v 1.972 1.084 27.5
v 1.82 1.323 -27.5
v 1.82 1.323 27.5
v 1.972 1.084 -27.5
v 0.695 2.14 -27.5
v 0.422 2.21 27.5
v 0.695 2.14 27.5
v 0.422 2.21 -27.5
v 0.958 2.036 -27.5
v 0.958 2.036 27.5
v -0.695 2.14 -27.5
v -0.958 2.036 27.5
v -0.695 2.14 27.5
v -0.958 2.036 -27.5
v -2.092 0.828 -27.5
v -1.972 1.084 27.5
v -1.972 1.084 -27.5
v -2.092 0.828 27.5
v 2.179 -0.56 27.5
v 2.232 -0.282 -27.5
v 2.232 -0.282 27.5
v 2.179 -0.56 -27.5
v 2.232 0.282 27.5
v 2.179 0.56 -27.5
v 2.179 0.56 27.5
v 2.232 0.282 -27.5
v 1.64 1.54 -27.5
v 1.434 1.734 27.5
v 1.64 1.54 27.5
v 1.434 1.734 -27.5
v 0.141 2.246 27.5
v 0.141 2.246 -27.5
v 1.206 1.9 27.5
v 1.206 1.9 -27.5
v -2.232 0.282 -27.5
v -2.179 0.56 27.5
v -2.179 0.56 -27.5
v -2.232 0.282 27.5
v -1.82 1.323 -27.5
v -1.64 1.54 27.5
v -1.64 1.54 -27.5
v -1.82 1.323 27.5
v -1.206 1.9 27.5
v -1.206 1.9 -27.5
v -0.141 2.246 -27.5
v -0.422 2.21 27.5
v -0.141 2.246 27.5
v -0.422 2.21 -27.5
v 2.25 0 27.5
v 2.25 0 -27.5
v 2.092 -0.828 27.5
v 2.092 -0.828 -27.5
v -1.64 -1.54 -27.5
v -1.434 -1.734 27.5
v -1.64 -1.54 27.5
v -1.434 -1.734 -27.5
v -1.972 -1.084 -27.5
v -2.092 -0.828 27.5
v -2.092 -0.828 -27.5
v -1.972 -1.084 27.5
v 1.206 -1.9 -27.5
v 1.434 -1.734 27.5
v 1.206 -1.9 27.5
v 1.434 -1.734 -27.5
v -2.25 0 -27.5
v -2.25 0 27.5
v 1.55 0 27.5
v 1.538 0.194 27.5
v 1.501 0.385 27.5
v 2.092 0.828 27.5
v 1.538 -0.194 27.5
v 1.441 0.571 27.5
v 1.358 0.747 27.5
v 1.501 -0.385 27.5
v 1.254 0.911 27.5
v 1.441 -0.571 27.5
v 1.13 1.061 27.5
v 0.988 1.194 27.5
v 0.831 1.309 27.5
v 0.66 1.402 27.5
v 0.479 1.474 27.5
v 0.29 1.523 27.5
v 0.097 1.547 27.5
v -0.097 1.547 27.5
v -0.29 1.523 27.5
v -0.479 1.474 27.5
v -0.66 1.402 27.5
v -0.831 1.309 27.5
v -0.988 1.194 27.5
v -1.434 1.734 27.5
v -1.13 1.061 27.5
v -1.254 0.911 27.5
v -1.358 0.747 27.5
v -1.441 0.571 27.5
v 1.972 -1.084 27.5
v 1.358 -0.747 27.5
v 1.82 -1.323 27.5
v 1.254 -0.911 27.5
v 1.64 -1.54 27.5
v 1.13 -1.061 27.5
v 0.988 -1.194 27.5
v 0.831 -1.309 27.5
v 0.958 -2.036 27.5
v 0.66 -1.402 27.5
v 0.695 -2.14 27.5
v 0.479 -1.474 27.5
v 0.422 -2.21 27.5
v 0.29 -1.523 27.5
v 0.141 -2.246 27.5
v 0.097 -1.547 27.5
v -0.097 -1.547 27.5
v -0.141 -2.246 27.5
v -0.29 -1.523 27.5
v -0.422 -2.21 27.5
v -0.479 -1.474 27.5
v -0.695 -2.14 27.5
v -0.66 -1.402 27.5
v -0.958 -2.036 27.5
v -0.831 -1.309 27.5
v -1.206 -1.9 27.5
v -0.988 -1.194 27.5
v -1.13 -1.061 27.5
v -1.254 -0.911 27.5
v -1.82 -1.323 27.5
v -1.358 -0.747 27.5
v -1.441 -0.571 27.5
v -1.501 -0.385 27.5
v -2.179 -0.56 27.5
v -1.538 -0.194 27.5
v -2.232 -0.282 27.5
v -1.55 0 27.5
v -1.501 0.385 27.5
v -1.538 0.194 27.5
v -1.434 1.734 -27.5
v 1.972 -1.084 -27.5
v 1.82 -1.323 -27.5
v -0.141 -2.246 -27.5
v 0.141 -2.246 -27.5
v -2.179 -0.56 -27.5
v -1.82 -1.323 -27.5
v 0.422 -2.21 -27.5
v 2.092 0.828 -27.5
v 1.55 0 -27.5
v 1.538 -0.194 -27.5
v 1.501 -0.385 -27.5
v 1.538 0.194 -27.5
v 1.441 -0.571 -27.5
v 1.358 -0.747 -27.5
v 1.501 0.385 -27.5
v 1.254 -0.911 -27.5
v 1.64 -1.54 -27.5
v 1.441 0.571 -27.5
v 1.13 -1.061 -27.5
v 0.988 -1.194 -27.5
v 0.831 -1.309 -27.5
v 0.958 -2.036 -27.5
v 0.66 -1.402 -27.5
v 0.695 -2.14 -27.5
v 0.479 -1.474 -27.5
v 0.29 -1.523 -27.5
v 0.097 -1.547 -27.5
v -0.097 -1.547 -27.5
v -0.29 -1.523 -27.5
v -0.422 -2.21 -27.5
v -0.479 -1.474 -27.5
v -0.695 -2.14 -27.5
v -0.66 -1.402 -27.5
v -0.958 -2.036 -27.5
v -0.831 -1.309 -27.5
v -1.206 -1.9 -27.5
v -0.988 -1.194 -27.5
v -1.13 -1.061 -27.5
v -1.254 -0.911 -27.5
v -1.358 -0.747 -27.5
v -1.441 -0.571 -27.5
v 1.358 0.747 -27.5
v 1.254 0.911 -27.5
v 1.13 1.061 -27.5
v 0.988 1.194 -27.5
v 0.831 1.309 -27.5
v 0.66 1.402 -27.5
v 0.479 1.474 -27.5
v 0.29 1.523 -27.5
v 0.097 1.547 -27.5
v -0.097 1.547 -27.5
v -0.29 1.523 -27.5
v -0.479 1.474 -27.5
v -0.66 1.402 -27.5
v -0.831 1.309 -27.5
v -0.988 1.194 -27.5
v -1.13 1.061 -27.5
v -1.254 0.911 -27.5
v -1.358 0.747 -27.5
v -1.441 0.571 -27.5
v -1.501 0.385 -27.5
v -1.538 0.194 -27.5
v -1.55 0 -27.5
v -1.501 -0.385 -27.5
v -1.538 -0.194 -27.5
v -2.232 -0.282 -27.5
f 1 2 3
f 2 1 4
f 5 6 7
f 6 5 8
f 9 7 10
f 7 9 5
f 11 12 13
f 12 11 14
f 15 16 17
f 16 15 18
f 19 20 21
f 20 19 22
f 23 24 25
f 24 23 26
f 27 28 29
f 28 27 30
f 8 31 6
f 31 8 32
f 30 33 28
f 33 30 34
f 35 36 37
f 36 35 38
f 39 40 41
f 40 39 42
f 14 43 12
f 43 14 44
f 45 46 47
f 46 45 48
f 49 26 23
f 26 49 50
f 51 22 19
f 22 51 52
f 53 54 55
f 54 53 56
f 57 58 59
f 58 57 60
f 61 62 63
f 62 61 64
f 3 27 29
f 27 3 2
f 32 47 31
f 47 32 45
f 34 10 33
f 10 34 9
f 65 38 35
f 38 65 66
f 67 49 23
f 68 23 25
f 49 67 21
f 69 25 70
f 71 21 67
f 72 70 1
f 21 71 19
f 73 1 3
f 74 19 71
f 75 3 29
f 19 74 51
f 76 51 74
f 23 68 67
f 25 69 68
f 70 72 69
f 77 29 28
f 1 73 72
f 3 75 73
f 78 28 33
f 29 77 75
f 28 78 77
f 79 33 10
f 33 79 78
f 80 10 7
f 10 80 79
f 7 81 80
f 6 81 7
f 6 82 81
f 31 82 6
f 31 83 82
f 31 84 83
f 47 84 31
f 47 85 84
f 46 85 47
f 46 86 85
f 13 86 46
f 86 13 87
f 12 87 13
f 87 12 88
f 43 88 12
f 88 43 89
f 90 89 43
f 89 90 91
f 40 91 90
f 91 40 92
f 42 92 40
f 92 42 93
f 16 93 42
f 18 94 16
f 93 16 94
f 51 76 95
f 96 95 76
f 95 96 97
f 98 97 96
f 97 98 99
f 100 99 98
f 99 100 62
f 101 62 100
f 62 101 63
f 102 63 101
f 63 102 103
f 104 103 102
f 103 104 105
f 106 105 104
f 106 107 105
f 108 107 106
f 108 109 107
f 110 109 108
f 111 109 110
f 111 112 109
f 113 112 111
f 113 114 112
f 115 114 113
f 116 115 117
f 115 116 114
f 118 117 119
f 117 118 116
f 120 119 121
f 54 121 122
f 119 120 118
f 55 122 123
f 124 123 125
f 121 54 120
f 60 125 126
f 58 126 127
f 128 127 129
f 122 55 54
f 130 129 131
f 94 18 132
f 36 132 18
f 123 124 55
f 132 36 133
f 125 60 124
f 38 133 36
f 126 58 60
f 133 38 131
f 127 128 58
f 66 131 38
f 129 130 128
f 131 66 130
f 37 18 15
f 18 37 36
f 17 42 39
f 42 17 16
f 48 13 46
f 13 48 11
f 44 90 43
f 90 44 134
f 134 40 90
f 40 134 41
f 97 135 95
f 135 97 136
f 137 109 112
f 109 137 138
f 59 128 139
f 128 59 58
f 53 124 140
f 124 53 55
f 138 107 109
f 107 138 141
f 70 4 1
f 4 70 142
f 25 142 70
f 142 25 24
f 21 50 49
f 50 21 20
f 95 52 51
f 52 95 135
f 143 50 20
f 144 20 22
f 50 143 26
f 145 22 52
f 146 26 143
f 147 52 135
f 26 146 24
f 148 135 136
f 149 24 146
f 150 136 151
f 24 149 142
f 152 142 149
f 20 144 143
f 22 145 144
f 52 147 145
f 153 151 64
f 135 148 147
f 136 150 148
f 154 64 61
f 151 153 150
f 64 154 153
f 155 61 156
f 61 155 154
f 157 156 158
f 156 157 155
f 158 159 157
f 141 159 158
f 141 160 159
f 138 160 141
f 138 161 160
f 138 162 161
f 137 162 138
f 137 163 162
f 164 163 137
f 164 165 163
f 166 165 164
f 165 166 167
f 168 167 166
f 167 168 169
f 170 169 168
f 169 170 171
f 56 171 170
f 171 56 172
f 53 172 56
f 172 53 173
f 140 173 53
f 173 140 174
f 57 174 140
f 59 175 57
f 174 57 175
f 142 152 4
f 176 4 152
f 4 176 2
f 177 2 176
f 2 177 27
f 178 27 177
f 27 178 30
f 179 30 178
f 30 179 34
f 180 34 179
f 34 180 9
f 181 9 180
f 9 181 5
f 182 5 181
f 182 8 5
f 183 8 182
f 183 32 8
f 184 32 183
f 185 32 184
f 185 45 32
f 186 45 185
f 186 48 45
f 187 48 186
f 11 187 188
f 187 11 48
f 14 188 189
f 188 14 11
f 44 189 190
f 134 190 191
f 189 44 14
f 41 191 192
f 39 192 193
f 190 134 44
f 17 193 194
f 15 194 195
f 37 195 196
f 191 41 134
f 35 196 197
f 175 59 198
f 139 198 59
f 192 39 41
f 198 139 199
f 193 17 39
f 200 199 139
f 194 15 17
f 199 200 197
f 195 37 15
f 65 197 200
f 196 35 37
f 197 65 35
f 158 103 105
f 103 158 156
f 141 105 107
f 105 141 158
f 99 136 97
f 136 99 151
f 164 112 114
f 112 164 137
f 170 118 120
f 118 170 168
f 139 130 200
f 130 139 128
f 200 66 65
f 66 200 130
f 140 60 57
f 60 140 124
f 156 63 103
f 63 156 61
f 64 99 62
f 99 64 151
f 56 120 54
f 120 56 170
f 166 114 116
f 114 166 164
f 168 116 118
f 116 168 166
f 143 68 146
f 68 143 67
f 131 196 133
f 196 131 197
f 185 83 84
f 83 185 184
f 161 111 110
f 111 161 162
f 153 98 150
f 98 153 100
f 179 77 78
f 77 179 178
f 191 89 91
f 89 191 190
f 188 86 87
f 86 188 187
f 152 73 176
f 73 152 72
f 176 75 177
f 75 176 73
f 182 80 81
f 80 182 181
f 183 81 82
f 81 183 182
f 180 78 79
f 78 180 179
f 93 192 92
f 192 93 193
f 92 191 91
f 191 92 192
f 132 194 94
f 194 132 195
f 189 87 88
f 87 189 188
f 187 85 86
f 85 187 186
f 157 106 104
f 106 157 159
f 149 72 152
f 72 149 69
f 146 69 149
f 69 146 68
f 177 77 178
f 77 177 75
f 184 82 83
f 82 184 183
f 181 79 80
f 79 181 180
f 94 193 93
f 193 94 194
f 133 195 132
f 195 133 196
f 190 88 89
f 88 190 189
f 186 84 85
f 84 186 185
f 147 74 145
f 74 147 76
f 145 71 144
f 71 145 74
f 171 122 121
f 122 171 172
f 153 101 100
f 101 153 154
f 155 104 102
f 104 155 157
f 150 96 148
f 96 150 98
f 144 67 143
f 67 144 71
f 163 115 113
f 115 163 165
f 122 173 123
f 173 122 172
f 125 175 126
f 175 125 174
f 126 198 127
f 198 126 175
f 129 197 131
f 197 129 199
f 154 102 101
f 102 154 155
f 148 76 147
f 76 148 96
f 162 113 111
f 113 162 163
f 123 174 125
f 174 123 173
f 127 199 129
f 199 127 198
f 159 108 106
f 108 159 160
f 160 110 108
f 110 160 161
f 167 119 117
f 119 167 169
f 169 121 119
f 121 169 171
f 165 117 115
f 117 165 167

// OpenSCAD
$fn = 50;


difference() {
	union() {
		translate(v = [0, 0, -27.5000000000]) {
			cylinder(h = 55, r = 2.2500000000);
		}
	}
	union() {
		translate(v = [0, 0, -100.0000000000]) {
			cylinder(h = 200, r = 1.5500000000);
		}
	}
}
